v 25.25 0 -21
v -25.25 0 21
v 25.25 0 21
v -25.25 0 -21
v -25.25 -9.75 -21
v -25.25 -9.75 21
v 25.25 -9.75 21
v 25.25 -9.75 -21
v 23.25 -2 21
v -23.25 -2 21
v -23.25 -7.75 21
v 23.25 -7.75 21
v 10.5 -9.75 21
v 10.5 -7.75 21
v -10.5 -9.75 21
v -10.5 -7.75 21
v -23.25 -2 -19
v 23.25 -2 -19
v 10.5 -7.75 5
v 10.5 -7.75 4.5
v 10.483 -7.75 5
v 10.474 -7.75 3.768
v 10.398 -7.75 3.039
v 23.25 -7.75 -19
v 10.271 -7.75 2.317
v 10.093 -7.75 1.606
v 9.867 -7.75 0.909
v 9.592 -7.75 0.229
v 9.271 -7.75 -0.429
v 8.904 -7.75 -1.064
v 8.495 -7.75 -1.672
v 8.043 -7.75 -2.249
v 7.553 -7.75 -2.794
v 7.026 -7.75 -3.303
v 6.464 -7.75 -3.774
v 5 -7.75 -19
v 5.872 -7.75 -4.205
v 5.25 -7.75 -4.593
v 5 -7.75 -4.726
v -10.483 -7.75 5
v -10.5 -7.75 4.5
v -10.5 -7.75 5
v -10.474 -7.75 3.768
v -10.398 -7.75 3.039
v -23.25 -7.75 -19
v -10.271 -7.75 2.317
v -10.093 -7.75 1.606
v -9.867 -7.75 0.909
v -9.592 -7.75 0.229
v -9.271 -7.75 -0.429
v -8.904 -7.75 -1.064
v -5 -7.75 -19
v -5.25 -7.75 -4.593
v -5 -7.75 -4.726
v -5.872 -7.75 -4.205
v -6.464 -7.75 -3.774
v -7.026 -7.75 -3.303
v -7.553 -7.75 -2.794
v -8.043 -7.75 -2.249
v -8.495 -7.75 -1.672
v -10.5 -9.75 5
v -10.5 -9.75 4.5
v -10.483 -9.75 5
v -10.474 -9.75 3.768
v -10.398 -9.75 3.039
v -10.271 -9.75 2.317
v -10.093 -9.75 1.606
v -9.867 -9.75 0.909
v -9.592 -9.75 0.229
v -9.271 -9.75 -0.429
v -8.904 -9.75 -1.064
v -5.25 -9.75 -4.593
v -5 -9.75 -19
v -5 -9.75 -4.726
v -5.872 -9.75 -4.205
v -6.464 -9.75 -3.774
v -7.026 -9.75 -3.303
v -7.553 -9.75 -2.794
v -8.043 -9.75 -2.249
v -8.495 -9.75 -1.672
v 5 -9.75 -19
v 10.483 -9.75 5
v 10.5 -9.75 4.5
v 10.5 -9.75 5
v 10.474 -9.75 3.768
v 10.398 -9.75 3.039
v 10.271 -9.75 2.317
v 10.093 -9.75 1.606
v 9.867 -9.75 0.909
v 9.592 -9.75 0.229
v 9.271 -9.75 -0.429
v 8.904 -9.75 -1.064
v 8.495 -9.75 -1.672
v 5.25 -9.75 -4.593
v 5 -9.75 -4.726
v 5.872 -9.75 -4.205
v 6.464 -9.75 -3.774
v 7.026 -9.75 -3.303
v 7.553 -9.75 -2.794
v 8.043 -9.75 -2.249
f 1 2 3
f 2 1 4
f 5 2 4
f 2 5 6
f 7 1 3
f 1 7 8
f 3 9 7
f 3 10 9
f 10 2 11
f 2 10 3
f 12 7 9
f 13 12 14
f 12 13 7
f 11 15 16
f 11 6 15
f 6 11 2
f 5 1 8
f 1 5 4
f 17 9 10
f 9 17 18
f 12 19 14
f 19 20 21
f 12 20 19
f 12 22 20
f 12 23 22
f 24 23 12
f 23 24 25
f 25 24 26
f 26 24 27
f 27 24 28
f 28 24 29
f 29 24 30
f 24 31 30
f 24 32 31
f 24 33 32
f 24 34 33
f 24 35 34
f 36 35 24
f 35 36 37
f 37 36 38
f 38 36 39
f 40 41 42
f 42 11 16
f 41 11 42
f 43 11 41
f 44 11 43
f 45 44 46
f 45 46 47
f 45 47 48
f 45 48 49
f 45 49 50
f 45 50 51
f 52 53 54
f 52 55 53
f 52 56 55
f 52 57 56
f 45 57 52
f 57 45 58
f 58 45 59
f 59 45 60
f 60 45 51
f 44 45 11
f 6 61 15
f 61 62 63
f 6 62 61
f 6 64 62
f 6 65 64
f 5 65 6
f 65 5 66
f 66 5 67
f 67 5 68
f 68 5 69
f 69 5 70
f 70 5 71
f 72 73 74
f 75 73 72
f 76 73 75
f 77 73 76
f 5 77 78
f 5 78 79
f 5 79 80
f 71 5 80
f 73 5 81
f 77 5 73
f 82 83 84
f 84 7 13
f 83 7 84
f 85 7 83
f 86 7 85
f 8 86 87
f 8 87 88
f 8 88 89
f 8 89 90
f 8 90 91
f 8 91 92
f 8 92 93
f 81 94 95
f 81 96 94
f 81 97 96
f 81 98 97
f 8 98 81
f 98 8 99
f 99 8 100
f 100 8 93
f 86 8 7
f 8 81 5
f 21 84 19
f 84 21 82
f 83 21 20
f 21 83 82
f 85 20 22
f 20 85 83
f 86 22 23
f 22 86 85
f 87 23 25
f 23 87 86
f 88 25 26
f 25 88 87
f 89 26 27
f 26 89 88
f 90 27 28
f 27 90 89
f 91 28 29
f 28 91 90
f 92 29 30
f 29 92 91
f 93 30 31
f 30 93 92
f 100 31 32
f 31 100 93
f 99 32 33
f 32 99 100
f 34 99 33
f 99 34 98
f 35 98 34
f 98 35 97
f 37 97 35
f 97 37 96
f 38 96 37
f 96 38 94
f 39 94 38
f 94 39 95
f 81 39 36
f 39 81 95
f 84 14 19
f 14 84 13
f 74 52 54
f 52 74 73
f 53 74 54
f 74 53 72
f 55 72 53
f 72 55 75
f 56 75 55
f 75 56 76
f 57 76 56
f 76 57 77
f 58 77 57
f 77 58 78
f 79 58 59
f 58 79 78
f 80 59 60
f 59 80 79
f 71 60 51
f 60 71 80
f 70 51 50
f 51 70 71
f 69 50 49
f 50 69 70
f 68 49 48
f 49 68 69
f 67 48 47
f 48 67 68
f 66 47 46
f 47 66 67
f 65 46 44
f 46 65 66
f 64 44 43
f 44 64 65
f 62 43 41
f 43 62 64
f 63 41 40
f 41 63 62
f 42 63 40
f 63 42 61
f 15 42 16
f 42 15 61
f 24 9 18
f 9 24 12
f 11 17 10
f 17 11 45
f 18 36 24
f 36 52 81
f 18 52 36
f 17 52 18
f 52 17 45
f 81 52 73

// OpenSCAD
$fn=90;
$wall_thickness=2;
$pad_thickness=7.75;

rotate([-90,0,180]){
    // clamp pad surface
    linear_extrude($wall_thickness)
    square([46.5+($wall_thickness*2),40+$wall_thickness], true);

    // clamp pad rear w/cutouts
    translate([0,0,$pad_thickness]){
        linear_extrude($wall_thickness){
            difference() {
                square([50.5,42], true);
                square([10,50], true);
                translate([0,-15,0])
                square([21,20],true);
                translate([0,-4.5,0])
                circle(d=21);
            }}}
            
    //walls
    translate([-24.25,0,0])      
      linear_extrude($pad_thickness)  
        square([$wall_thickness, 42], true);
            
    translate([24.25,0,0])      
      linear_extrude($pad_thickness)  
        square([$wall_thickness, 42], true);
            
    translate([0,20,0])      
      linear_extrude($pad_thickness+2)  
        square([49,$wall_thickness], true);
}
